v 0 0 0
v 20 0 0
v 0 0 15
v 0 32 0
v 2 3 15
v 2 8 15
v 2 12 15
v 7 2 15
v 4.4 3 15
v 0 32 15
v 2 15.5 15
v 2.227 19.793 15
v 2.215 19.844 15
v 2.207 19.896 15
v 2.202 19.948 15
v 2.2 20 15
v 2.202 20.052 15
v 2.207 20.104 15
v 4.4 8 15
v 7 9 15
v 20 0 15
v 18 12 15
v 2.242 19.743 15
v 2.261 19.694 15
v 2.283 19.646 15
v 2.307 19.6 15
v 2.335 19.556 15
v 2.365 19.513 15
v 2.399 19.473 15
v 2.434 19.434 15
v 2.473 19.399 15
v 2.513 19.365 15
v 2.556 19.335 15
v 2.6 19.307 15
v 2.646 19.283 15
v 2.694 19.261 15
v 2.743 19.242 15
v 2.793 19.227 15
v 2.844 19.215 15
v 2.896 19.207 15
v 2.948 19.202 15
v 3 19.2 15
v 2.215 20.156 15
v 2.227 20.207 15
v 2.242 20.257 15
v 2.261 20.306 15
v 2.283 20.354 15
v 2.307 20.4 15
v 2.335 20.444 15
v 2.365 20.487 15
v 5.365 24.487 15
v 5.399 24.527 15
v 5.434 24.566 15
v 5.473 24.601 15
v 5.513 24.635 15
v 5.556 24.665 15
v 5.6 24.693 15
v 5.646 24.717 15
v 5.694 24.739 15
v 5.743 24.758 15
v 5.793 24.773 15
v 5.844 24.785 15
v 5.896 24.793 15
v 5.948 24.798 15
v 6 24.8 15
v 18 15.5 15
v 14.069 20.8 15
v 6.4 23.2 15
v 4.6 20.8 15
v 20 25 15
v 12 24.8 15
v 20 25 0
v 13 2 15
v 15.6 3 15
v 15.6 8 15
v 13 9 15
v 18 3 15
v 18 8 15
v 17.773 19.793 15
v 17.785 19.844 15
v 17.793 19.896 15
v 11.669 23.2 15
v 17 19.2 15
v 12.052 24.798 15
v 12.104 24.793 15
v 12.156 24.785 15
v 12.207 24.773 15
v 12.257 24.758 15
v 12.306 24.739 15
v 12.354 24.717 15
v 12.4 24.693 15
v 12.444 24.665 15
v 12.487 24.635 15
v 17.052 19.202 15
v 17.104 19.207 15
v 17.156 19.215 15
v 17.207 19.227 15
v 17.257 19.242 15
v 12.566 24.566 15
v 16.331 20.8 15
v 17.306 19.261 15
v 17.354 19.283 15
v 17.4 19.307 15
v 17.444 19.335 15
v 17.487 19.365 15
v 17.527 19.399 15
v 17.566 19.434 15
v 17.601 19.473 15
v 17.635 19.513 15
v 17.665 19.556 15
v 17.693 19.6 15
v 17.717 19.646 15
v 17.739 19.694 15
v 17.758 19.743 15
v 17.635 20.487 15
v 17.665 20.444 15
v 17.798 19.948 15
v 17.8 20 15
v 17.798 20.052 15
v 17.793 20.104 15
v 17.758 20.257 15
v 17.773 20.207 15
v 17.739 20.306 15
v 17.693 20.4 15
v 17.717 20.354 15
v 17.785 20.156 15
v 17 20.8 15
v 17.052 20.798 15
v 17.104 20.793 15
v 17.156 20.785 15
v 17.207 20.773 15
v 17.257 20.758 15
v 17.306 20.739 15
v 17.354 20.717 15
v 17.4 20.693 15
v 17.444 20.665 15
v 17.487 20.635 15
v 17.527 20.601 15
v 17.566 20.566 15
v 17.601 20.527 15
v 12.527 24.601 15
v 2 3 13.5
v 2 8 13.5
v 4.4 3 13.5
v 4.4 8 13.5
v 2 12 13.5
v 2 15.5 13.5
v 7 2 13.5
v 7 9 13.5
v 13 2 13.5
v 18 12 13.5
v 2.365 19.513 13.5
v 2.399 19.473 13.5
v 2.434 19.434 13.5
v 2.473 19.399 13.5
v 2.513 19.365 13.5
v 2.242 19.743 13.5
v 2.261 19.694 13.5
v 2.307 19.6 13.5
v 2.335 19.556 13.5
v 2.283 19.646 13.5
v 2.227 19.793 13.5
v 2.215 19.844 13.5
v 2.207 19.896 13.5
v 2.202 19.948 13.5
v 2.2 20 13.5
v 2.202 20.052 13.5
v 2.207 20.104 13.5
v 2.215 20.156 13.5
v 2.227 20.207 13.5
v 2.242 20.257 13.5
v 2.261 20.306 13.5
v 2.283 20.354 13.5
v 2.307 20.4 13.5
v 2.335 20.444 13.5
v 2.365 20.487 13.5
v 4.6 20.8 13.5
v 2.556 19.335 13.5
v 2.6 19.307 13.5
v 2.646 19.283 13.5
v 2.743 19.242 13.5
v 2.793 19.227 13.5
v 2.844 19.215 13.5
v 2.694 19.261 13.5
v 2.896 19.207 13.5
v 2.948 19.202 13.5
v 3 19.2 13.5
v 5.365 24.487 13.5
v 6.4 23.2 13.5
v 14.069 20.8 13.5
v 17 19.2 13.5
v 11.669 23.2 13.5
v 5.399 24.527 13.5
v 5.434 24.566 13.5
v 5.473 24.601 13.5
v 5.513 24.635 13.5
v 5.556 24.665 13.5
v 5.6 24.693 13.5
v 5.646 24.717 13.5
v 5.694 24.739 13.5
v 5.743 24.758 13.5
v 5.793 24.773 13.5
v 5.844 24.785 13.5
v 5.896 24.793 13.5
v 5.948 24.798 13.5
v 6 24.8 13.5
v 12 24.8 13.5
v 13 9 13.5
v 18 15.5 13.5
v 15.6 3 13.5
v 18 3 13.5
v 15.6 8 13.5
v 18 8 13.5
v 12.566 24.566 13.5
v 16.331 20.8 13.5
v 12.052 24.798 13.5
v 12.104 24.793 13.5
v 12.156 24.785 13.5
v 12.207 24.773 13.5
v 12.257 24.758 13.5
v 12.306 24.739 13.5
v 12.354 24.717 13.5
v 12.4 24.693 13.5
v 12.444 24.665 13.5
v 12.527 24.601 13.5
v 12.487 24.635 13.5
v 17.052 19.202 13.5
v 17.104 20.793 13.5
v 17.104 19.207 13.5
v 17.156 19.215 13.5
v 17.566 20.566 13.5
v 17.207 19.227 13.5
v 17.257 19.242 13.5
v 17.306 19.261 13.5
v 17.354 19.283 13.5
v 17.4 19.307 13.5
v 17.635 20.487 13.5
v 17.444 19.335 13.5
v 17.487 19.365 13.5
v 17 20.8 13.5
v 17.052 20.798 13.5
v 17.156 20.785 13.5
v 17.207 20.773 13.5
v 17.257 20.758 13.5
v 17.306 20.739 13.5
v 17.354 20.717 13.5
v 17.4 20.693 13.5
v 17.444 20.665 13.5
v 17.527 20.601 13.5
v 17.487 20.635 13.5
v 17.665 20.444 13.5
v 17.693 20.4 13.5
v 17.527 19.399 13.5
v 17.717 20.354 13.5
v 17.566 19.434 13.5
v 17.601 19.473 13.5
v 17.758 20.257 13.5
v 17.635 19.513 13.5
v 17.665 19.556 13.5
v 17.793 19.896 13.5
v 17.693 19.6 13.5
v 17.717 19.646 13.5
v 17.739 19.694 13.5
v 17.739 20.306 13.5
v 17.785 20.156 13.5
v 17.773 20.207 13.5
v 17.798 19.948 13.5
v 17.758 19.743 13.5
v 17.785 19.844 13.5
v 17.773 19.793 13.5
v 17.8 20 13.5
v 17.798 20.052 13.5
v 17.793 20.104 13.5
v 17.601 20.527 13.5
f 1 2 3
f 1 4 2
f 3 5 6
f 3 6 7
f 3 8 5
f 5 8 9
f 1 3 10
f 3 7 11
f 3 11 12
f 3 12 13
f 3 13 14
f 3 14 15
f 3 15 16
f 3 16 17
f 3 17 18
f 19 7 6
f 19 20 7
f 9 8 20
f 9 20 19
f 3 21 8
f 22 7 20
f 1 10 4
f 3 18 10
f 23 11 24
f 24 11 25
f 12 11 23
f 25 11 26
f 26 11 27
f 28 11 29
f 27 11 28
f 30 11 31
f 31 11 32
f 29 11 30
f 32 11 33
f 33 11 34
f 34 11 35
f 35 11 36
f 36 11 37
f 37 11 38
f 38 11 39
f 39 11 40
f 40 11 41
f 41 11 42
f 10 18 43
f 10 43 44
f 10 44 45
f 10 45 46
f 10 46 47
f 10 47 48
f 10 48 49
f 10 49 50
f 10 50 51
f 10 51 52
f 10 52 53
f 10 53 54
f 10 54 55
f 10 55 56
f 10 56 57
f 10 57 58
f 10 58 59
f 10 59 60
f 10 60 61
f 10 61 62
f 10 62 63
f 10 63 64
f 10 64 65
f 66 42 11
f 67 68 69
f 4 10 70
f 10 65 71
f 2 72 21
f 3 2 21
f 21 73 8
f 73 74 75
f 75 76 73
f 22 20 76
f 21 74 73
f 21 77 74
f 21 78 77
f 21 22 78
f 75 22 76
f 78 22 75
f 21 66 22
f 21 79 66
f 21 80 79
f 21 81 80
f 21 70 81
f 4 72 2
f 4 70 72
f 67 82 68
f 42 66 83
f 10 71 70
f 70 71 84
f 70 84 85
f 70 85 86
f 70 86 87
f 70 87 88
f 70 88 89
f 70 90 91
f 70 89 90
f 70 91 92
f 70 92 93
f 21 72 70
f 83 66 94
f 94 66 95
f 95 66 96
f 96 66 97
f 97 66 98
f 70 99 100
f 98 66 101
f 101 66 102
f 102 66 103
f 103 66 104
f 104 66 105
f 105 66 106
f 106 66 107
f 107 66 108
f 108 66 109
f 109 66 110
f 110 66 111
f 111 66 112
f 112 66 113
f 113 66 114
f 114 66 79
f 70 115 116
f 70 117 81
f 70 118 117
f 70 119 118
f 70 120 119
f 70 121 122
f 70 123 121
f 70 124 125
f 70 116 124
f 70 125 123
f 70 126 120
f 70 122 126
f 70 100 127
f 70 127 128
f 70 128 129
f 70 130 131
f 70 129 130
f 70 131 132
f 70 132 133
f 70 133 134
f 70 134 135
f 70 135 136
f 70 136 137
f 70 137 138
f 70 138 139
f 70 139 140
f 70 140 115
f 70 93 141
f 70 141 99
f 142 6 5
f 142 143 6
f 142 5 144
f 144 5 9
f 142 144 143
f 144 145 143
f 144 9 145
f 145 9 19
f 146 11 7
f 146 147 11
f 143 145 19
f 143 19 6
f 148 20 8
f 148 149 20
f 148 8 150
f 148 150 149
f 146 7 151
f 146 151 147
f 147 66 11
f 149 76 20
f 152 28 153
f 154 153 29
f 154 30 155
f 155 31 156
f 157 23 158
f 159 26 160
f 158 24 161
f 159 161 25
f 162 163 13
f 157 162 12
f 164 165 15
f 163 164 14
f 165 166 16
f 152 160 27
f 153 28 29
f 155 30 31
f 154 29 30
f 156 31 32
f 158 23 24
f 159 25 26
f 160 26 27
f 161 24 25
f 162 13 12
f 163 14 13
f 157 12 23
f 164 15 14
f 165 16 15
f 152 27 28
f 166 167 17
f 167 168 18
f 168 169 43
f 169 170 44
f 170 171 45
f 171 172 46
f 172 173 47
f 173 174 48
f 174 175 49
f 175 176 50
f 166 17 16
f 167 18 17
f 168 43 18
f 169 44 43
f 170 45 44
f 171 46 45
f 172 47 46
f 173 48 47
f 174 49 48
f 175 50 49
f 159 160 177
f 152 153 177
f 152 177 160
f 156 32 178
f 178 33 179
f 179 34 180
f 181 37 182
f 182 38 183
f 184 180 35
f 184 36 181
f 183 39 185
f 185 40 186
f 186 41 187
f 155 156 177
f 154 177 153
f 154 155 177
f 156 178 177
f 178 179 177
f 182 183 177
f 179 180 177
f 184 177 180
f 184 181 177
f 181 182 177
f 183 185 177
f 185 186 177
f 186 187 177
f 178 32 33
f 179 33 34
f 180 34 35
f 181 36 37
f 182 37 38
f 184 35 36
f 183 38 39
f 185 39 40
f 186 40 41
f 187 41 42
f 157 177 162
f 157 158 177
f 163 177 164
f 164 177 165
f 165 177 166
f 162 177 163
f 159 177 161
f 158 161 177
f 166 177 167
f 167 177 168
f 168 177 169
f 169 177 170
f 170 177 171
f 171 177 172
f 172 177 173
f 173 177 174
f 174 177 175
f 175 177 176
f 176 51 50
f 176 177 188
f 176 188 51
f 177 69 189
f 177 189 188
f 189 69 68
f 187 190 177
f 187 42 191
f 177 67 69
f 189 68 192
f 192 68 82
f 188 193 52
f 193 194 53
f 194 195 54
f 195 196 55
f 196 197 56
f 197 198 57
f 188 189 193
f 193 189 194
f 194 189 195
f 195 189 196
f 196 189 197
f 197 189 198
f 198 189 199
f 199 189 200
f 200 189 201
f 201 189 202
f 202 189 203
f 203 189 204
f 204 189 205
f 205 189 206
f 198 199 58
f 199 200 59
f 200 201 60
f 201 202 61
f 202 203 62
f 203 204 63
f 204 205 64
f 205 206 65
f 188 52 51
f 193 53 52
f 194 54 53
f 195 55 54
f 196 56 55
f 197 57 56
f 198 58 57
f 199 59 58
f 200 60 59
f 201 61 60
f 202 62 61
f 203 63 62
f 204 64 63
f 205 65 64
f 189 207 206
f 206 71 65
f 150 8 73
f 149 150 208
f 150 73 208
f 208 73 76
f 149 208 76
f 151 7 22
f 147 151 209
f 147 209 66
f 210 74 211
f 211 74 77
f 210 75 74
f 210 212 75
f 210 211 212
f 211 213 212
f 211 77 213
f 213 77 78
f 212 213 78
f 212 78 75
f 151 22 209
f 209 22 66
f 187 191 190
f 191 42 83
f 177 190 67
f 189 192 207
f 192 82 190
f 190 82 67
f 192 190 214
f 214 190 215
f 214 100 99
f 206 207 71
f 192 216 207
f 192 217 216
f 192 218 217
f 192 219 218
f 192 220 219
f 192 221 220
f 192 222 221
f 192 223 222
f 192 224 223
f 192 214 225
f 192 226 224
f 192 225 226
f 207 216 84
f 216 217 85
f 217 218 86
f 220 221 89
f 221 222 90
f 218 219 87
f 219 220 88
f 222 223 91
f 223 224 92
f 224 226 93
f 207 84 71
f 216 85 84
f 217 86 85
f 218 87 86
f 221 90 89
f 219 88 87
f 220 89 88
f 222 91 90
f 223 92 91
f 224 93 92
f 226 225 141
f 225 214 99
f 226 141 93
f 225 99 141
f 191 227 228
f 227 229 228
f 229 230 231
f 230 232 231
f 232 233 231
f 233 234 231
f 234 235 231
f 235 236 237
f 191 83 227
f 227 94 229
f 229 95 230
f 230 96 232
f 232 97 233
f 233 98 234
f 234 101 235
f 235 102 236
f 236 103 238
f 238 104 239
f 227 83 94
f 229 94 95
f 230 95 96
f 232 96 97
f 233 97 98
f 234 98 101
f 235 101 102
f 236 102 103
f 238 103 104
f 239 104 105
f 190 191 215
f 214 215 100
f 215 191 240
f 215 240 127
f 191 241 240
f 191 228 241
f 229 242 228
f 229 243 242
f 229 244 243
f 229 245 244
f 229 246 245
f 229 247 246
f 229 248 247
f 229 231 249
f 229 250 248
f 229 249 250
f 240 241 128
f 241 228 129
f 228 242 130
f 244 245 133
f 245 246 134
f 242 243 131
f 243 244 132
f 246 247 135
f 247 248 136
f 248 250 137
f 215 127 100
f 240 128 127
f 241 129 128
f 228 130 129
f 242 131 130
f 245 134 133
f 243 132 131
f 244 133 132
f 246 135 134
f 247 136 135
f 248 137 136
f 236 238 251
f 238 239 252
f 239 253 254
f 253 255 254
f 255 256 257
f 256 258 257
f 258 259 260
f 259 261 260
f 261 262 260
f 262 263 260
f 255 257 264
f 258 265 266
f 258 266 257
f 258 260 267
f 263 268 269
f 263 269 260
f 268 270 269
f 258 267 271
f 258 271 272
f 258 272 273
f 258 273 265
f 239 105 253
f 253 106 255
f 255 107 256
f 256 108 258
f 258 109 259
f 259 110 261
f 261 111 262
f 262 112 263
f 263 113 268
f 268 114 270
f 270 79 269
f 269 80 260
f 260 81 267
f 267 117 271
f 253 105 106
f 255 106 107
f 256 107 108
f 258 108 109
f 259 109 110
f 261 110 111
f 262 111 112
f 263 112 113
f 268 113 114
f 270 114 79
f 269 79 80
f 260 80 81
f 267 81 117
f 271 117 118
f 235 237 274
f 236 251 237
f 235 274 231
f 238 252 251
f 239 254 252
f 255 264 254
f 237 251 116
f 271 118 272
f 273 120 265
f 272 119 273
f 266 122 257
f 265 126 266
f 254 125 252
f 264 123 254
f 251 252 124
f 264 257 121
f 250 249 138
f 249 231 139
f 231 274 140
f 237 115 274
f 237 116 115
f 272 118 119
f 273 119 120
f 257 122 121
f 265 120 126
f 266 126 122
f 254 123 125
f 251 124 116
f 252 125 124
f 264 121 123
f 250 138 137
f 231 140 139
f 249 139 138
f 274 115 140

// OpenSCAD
// Building facade miniature for board games.
// Millimetres. X=width, Y=height, Z=depth.
// Print flat at Z=0; straight base at Y=0; front at Z=15.
// All recesses are blind and 1.5 mm deep. This is a solid piece.
$fn=96;
depth=15;
recess=1.5;
module rect(x,y,w,h) { translate([x,y]) square([w,h]); }
module disc(x,y,r) { translate([x,y]) circle(r=r); }
module line(a,b,w=1.4) {
    hull() { translate(a) circle(d=w); translate(b) circle(d=w); }
}
module frame(x,y,w,h,t=1.4) {
    difference() { rect(x,y,w,h); rect(x+t,y+t,w-2*t,h-2*t); }
}
module gear(x,y,r=6,inner=2.4) {
    translate([x,y]) difference() {
        polygon([for(i=[0:(r<4?15:23)]) let(n=(r<4?16:24),a=(i+1)*360/n,rr=(i%4<2?r:r-min(1.5,r*0.21))) [rr*cos(a),rr*sin(a)]]);
        circle(r=inner);
    }
}
module car(x,y,w=14,h=5) {
    translate([x,y]) union() {
        polygon([[0,0.8],[0,h*0.48],[w*0.2,h*0.48],
                 [w*0.35,h],[w*0.67,h],[w*0.82,h*0.48],
                 [w,h*0.35],[w,0.8]]);
        disc(w*0.23,0.8,1.3); disc(w*0.77,0.8,1.3);
    }
}
module recycling(x,y,r=6) {
    translate([x,y]) for(a=[0,120,240]) rotate(a) {
        line([-3.8,3.2],[1.2,3.2],1.6);
        polygon([[1.2,1.7],[4.2,3.2],[1.2,4.7]]);
    }
}
module cutface() { translate([0,0,depth-recess]) linear_extrude(height=recess+0.5) facade(); }
// All details are recessed into the same solid facade.
difference() {
    linear_extrude(height=depth) outline();
    cutface();
}


module outline() { polygon([[0,0],[20,0],[20,25],[0,32]]); }
module facade() {
    rect(7,2,6,7);
    rect(2,12,16,3.5);
    line([3,20],[17,20],1.6);
    line([3,20],[6,24],1.6); line([6,24],[12,24],1.6);
    line([12,24],[16,20],1.6);
    rect(2,3,2.4,5); rect(15.6,3,2.4,5);
}
